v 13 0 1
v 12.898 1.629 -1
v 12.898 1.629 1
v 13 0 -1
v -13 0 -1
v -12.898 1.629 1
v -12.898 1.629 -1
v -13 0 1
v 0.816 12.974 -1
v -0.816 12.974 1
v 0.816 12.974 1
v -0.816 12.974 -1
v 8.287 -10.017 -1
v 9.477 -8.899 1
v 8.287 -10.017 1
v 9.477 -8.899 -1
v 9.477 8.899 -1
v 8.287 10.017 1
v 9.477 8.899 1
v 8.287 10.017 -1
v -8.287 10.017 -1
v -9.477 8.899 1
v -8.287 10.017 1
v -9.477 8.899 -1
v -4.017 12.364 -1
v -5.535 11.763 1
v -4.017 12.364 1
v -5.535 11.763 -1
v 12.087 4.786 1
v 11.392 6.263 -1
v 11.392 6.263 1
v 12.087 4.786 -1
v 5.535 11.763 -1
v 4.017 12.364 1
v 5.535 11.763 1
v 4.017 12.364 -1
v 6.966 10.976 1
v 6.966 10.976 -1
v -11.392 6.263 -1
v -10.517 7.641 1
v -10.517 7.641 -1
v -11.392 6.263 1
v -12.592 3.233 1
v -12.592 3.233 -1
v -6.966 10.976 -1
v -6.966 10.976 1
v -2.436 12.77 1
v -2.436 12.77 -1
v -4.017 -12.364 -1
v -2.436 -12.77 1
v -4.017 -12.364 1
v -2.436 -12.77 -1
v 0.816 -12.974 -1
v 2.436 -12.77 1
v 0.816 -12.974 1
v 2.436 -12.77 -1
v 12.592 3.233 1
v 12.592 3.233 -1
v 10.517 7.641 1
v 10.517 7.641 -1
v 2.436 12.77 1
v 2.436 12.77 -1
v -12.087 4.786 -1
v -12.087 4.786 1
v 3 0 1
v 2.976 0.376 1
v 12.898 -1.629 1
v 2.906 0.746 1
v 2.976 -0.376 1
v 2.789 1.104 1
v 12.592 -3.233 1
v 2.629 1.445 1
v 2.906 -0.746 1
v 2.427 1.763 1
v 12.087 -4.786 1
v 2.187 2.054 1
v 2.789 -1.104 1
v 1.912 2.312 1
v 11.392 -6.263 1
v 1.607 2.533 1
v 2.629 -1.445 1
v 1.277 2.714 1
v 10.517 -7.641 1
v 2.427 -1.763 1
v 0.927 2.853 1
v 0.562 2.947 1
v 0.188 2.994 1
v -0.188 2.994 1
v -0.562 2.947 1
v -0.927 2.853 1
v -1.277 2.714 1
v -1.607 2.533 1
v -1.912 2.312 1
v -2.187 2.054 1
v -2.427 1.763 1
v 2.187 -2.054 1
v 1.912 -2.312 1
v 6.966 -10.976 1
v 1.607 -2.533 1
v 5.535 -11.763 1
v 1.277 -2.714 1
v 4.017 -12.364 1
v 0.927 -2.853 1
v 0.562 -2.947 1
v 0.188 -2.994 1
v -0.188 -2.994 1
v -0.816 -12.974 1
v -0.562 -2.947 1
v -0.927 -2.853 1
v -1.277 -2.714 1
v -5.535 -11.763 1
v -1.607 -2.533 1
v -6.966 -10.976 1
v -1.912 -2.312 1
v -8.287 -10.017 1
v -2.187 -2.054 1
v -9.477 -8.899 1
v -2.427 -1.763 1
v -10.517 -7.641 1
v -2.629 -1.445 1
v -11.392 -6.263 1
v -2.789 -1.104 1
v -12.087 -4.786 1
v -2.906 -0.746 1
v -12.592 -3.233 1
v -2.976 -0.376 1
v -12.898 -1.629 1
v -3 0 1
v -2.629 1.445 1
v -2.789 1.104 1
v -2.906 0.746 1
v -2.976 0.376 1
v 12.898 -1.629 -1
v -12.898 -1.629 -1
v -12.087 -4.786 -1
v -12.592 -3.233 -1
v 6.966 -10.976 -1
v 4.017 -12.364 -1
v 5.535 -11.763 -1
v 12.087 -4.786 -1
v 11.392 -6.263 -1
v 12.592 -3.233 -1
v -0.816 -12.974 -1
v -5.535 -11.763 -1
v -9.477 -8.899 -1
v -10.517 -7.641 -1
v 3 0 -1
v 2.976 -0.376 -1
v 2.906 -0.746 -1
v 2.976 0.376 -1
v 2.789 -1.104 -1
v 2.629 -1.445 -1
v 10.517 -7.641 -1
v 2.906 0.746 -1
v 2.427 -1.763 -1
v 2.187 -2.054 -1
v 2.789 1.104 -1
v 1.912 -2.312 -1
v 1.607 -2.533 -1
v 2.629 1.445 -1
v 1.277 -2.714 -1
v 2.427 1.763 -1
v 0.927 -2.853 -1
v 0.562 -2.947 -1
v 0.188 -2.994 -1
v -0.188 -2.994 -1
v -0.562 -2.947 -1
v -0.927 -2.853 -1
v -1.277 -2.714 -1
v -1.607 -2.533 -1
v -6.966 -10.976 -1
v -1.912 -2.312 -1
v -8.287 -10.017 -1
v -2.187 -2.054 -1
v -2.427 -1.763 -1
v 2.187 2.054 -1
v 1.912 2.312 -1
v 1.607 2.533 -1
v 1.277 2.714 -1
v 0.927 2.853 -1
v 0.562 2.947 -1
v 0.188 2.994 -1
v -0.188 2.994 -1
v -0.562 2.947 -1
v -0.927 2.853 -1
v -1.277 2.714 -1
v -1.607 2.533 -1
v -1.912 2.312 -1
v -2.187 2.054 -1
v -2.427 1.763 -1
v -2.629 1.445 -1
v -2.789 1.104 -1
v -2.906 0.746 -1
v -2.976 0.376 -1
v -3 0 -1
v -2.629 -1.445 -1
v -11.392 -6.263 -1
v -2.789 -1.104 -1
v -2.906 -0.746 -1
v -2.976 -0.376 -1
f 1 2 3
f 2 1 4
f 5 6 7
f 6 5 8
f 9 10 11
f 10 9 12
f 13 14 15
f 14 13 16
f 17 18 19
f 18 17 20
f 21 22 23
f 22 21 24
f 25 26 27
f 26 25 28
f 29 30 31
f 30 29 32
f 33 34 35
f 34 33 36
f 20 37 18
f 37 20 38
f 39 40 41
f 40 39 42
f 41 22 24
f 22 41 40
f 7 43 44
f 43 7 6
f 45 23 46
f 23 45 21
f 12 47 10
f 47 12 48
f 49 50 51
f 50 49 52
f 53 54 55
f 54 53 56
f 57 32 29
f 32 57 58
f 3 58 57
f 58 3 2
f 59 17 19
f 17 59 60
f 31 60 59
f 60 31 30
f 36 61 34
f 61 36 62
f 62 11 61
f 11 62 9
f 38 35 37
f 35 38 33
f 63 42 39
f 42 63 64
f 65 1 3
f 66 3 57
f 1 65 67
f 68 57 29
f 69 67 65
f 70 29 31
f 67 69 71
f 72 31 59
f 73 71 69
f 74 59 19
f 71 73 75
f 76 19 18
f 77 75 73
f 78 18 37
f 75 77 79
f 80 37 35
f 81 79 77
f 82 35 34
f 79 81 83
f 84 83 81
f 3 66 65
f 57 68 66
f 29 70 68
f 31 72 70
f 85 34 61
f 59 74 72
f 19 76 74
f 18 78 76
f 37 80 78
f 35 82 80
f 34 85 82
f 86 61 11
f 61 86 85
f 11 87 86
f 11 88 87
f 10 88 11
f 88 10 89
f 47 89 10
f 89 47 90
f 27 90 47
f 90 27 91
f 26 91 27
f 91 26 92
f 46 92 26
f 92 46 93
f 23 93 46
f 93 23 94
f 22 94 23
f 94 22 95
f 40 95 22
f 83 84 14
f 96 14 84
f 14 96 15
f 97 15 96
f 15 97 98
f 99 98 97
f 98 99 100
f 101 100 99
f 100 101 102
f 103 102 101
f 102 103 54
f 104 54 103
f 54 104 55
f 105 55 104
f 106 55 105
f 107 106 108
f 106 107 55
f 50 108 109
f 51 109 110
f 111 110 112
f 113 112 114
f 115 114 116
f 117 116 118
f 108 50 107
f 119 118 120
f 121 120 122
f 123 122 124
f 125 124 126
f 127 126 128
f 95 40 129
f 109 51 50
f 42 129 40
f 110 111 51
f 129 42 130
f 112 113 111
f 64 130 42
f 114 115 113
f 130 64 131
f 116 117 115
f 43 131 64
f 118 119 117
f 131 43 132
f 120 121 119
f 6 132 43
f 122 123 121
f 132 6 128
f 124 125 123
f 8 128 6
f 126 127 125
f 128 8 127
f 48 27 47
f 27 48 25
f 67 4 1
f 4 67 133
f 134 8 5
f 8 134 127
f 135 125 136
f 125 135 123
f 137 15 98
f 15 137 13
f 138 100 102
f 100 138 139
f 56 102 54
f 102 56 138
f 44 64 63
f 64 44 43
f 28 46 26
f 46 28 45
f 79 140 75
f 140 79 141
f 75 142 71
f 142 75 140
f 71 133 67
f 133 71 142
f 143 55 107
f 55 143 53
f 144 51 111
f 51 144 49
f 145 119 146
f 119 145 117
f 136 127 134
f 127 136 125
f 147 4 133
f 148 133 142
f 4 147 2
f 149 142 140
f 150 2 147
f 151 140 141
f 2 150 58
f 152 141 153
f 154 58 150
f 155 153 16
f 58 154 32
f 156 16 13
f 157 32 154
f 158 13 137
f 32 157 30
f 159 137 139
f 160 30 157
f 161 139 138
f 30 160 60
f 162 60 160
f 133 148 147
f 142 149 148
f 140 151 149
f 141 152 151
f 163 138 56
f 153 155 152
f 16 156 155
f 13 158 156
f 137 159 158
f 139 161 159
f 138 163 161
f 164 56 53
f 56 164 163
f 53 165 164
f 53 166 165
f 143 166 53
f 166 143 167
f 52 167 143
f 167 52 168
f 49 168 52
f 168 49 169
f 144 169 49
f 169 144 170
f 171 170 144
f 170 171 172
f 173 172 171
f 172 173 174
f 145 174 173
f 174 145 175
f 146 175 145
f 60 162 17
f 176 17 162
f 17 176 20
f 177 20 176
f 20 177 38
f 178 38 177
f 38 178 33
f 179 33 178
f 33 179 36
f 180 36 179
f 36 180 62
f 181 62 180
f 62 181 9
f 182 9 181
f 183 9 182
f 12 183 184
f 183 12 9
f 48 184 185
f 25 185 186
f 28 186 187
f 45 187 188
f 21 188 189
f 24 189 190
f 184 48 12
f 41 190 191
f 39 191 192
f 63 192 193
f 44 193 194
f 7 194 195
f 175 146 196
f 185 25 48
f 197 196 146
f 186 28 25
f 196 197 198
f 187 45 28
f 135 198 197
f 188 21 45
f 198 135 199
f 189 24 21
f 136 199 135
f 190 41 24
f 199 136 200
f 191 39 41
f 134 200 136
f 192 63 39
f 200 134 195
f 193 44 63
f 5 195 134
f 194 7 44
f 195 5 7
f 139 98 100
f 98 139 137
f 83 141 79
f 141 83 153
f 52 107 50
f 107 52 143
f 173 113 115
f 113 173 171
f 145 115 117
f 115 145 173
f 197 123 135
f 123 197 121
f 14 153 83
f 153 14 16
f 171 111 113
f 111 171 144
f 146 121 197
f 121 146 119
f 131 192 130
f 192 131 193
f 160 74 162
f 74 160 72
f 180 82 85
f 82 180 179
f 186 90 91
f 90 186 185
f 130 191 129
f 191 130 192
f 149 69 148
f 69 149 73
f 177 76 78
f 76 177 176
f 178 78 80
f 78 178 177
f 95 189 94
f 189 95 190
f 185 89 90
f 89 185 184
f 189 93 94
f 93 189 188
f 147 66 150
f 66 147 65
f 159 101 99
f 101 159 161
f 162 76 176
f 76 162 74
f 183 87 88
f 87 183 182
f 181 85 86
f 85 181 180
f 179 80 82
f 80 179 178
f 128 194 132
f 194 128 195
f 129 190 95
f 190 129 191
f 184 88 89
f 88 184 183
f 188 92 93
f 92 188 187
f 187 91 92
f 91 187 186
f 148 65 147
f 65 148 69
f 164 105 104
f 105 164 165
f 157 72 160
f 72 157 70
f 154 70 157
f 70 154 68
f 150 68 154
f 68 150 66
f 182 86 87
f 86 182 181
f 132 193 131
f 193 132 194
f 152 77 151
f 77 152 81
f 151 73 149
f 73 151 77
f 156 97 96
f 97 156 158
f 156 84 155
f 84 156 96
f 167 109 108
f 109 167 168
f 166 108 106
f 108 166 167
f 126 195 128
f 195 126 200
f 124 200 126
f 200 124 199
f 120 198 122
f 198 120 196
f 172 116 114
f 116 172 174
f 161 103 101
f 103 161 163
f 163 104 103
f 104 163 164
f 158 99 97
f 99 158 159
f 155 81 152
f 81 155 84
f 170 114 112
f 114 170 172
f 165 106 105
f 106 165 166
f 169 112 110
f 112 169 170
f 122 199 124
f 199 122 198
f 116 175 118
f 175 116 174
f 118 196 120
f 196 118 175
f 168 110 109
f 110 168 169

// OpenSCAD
$fn = 50;


difference() {
	union() {
		translate(v = [0, 0, -1.0000000000]) {
			cylinder(h = 2, r = 13.0000000000);
		}
	}
	union() {
		translate(v = [0, 0, -100.0000000000]) {
			cylinder(h = 200, r = 3.0000000000);
		}
	}
}
